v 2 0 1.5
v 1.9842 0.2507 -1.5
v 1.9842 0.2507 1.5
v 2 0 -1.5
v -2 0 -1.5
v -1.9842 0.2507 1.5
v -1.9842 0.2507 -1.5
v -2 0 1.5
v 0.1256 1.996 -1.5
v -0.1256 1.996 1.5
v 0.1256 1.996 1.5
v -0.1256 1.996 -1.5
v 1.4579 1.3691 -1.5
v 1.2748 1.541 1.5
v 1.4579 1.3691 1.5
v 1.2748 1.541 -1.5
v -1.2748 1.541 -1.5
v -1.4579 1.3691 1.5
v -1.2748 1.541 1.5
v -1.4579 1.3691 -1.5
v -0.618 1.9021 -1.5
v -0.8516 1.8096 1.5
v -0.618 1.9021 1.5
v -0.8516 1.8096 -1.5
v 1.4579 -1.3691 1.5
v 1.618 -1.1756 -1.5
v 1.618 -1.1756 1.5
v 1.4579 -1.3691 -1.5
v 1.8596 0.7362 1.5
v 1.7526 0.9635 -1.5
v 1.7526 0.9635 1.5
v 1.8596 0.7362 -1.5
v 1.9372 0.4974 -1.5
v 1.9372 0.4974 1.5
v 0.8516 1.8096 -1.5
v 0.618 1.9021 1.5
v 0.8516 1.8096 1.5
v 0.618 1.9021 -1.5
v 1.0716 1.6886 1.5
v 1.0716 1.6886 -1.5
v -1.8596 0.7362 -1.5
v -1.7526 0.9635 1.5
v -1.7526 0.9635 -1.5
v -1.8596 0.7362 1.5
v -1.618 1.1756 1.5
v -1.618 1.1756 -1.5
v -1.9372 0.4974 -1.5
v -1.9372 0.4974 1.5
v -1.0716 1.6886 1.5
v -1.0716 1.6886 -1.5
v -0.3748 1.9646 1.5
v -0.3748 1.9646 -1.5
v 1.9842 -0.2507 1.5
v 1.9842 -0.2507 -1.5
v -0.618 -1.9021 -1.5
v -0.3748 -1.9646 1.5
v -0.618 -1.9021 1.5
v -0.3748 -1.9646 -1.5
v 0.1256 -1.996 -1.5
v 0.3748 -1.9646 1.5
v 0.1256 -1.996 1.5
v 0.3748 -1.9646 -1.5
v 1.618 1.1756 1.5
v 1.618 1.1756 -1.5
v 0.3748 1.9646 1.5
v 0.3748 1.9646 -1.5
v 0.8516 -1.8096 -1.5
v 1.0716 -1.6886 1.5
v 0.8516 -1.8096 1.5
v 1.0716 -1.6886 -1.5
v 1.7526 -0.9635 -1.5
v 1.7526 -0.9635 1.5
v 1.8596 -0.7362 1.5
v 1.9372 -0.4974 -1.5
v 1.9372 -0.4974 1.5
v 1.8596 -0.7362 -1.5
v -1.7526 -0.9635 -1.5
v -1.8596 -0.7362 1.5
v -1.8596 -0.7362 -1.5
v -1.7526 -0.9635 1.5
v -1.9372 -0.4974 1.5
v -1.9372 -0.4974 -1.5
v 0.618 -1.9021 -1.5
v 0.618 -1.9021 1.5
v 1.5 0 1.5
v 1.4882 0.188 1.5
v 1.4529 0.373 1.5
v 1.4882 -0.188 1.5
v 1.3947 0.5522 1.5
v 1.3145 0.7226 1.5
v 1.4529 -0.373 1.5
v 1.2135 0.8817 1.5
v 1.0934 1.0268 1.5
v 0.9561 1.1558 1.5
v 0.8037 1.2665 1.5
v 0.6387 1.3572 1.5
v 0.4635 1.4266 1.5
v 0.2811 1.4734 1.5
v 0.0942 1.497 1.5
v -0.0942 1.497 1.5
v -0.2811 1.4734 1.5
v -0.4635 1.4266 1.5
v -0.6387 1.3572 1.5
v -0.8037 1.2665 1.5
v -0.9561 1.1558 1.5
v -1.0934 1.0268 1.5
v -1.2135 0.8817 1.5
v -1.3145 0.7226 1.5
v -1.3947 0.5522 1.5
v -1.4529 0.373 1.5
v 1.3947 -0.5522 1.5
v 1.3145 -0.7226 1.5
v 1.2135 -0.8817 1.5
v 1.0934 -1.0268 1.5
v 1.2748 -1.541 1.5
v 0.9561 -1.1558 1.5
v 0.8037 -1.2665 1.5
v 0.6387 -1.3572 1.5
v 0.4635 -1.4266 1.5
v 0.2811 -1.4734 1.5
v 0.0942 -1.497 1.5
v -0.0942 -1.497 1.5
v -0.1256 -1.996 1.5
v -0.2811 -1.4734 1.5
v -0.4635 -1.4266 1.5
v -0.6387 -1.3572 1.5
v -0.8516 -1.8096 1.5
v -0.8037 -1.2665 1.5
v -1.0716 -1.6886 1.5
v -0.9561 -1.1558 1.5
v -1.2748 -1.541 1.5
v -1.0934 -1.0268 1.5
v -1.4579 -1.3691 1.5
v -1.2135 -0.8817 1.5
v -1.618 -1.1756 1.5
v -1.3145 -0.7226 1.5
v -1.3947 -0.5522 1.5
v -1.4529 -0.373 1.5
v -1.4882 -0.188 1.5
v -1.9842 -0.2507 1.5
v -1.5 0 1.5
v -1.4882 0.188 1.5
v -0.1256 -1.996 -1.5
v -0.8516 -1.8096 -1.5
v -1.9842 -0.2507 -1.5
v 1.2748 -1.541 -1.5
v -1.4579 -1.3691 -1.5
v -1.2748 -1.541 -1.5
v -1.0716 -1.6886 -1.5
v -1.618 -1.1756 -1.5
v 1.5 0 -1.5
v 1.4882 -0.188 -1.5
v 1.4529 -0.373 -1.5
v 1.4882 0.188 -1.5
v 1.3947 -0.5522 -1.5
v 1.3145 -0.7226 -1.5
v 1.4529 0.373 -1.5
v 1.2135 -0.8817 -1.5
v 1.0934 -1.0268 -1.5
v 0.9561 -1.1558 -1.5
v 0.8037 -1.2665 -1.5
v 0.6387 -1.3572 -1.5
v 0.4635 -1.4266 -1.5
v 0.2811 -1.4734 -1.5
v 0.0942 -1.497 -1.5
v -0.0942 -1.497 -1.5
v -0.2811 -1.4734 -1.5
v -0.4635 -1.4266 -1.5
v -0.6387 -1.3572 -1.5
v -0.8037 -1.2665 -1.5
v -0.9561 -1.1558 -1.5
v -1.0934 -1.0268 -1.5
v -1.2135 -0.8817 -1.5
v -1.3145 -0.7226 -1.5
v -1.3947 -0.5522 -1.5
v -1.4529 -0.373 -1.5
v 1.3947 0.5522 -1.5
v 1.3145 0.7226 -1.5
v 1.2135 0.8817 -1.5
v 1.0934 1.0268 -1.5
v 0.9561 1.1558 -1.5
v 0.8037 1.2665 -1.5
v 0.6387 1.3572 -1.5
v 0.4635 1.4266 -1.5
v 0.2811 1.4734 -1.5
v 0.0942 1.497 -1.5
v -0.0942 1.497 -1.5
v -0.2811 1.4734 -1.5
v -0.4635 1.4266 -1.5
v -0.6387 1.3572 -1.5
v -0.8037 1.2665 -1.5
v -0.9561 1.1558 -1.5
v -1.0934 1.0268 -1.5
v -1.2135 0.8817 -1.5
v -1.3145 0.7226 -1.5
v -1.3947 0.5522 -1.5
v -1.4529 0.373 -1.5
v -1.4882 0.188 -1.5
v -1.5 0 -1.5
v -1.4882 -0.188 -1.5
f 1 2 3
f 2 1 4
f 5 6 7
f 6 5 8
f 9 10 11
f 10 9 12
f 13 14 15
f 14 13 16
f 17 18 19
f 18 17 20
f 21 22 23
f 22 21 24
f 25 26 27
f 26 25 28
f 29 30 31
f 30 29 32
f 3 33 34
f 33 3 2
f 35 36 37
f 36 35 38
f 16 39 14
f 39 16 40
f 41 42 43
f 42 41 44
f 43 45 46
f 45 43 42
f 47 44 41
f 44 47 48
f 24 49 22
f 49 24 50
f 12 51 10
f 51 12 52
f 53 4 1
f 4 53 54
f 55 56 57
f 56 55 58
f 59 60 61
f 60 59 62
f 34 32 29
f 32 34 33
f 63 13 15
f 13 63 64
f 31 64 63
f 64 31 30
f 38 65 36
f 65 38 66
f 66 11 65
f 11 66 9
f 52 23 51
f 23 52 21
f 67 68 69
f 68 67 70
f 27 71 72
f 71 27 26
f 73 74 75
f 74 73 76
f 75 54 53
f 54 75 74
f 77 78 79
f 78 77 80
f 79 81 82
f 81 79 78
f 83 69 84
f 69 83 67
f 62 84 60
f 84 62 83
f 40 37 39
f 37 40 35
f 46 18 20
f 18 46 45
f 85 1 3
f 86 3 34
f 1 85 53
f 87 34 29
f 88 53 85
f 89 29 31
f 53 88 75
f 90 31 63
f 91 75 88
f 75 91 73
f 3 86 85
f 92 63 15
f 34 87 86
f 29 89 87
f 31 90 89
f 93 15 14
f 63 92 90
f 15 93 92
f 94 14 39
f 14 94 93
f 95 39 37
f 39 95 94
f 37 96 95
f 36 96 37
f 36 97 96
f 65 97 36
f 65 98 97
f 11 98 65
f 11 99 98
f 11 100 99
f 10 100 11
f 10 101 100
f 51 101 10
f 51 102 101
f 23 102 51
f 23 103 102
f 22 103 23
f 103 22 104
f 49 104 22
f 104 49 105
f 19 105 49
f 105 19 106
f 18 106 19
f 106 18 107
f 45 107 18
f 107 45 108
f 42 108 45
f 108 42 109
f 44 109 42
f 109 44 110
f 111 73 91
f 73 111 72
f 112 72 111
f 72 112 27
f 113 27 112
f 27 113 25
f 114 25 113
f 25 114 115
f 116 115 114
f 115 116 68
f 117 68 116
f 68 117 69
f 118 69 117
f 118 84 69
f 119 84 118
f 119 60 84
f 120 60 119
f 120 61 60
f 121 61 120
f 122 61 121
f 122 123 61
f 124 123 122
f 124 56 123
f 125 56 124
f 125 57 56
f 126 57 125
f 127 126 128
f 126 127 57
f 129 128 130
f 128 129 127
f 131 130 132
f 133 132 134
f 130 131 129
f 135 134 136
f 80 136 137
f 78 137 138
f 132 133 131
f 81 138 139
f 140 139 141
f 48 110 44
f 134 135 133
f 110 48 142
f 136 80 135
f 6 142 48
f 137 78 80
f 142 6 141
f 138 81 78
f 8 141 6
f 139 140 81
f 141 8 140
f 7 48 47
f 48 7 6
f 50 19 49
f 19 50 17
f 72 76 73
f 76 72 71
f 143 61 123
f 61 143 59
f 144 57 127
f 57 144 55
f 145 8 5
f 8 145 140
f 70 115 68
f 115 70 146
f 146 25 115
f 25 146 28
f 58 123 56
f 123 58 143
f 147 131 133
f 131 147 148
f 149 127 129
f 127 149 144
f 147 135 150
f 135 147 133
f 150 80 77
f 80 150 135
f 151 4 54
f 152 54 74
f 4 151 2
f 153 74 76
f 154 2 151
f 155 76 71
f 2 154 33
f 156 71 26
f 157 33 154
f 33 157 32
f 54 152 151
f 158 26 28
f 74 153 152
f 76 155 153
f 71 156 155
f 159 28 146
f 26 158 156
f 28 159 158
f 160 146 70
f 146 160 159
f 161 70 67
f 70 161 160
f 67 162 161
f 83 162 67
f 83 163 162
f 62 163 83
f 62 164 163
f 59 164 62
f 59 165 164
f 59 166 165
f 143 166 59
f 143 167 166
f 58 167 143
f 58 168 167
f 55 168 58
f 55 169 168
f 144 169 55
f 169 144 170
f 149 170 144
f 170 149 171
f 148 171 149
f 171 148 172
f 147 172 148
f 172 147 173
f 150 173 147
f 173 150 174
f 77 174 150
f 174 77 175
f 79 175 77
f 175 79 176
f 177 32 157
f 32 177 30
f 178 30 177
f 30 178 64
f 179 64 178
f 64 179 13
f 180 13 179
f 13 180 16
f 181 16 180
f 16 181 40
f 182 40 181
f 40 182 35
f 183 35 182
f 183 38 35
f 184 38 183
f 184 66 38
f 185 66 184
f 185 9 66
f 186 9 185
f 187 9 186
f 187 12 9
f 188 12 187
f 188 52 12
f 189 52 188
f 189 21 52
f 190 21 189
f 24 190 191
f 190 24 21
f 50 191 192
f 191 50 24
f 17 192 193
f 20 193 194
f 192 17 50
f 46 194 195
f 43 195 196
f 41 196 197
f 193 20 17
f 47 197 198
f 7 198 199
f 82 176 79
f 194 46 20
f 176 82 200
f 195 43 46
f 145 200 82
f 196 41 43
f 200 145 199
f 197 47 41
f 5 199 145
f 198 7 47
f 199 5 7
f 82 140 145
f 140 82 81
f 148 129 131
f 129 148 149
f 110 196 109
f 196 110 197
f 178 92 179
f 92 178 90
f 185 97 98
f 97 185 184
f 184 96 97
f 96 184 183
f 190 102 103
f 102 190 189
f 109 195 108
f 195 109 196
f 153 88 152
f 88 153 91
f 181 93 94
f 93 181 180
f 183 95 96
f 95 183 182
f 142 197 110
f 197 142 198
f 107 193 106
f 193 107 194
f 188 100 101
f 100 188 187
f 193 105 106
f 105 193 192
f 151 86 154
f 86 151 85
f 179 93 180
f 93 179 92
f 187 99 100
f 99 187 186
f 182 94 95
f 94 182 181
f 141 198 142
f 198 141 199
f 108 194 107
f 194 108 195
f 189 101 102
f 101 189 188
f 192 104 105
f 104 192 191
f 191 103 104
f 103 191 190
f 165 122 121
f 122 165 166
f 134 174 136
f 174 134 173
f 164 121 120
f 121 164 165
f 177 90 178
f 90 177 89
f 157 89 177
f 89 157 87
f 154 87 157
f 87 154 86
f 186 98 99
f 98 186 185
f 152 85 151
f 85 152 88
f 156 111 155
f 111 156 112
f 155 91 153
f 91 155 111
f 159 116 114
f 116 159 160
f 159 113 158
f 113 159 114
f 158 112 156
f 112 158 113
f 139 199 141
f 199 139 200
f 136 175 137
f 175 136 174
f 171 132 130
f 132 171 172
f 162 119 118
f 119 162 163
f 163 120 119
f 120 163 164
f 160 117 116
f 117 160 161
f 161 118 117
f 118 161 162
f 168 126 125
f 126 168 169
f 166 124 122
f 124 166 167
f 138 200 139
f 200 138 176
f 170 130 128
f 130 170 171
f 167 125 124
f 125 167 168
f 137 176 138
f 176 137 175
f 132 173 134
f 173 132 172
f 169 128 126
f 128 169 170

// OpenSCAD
$fn = 50;


difference() {
	union() {
		translate(v = [0, 0, -1.5000000000]) {
			cylinder(h = 3, r = 2.0000000000);
		}
	}
	union() {
		translate(v = [0, 0, -100.0000000000]) {
			cylinder(h = 200, r = 1.5000000000);
		}
	}
}
